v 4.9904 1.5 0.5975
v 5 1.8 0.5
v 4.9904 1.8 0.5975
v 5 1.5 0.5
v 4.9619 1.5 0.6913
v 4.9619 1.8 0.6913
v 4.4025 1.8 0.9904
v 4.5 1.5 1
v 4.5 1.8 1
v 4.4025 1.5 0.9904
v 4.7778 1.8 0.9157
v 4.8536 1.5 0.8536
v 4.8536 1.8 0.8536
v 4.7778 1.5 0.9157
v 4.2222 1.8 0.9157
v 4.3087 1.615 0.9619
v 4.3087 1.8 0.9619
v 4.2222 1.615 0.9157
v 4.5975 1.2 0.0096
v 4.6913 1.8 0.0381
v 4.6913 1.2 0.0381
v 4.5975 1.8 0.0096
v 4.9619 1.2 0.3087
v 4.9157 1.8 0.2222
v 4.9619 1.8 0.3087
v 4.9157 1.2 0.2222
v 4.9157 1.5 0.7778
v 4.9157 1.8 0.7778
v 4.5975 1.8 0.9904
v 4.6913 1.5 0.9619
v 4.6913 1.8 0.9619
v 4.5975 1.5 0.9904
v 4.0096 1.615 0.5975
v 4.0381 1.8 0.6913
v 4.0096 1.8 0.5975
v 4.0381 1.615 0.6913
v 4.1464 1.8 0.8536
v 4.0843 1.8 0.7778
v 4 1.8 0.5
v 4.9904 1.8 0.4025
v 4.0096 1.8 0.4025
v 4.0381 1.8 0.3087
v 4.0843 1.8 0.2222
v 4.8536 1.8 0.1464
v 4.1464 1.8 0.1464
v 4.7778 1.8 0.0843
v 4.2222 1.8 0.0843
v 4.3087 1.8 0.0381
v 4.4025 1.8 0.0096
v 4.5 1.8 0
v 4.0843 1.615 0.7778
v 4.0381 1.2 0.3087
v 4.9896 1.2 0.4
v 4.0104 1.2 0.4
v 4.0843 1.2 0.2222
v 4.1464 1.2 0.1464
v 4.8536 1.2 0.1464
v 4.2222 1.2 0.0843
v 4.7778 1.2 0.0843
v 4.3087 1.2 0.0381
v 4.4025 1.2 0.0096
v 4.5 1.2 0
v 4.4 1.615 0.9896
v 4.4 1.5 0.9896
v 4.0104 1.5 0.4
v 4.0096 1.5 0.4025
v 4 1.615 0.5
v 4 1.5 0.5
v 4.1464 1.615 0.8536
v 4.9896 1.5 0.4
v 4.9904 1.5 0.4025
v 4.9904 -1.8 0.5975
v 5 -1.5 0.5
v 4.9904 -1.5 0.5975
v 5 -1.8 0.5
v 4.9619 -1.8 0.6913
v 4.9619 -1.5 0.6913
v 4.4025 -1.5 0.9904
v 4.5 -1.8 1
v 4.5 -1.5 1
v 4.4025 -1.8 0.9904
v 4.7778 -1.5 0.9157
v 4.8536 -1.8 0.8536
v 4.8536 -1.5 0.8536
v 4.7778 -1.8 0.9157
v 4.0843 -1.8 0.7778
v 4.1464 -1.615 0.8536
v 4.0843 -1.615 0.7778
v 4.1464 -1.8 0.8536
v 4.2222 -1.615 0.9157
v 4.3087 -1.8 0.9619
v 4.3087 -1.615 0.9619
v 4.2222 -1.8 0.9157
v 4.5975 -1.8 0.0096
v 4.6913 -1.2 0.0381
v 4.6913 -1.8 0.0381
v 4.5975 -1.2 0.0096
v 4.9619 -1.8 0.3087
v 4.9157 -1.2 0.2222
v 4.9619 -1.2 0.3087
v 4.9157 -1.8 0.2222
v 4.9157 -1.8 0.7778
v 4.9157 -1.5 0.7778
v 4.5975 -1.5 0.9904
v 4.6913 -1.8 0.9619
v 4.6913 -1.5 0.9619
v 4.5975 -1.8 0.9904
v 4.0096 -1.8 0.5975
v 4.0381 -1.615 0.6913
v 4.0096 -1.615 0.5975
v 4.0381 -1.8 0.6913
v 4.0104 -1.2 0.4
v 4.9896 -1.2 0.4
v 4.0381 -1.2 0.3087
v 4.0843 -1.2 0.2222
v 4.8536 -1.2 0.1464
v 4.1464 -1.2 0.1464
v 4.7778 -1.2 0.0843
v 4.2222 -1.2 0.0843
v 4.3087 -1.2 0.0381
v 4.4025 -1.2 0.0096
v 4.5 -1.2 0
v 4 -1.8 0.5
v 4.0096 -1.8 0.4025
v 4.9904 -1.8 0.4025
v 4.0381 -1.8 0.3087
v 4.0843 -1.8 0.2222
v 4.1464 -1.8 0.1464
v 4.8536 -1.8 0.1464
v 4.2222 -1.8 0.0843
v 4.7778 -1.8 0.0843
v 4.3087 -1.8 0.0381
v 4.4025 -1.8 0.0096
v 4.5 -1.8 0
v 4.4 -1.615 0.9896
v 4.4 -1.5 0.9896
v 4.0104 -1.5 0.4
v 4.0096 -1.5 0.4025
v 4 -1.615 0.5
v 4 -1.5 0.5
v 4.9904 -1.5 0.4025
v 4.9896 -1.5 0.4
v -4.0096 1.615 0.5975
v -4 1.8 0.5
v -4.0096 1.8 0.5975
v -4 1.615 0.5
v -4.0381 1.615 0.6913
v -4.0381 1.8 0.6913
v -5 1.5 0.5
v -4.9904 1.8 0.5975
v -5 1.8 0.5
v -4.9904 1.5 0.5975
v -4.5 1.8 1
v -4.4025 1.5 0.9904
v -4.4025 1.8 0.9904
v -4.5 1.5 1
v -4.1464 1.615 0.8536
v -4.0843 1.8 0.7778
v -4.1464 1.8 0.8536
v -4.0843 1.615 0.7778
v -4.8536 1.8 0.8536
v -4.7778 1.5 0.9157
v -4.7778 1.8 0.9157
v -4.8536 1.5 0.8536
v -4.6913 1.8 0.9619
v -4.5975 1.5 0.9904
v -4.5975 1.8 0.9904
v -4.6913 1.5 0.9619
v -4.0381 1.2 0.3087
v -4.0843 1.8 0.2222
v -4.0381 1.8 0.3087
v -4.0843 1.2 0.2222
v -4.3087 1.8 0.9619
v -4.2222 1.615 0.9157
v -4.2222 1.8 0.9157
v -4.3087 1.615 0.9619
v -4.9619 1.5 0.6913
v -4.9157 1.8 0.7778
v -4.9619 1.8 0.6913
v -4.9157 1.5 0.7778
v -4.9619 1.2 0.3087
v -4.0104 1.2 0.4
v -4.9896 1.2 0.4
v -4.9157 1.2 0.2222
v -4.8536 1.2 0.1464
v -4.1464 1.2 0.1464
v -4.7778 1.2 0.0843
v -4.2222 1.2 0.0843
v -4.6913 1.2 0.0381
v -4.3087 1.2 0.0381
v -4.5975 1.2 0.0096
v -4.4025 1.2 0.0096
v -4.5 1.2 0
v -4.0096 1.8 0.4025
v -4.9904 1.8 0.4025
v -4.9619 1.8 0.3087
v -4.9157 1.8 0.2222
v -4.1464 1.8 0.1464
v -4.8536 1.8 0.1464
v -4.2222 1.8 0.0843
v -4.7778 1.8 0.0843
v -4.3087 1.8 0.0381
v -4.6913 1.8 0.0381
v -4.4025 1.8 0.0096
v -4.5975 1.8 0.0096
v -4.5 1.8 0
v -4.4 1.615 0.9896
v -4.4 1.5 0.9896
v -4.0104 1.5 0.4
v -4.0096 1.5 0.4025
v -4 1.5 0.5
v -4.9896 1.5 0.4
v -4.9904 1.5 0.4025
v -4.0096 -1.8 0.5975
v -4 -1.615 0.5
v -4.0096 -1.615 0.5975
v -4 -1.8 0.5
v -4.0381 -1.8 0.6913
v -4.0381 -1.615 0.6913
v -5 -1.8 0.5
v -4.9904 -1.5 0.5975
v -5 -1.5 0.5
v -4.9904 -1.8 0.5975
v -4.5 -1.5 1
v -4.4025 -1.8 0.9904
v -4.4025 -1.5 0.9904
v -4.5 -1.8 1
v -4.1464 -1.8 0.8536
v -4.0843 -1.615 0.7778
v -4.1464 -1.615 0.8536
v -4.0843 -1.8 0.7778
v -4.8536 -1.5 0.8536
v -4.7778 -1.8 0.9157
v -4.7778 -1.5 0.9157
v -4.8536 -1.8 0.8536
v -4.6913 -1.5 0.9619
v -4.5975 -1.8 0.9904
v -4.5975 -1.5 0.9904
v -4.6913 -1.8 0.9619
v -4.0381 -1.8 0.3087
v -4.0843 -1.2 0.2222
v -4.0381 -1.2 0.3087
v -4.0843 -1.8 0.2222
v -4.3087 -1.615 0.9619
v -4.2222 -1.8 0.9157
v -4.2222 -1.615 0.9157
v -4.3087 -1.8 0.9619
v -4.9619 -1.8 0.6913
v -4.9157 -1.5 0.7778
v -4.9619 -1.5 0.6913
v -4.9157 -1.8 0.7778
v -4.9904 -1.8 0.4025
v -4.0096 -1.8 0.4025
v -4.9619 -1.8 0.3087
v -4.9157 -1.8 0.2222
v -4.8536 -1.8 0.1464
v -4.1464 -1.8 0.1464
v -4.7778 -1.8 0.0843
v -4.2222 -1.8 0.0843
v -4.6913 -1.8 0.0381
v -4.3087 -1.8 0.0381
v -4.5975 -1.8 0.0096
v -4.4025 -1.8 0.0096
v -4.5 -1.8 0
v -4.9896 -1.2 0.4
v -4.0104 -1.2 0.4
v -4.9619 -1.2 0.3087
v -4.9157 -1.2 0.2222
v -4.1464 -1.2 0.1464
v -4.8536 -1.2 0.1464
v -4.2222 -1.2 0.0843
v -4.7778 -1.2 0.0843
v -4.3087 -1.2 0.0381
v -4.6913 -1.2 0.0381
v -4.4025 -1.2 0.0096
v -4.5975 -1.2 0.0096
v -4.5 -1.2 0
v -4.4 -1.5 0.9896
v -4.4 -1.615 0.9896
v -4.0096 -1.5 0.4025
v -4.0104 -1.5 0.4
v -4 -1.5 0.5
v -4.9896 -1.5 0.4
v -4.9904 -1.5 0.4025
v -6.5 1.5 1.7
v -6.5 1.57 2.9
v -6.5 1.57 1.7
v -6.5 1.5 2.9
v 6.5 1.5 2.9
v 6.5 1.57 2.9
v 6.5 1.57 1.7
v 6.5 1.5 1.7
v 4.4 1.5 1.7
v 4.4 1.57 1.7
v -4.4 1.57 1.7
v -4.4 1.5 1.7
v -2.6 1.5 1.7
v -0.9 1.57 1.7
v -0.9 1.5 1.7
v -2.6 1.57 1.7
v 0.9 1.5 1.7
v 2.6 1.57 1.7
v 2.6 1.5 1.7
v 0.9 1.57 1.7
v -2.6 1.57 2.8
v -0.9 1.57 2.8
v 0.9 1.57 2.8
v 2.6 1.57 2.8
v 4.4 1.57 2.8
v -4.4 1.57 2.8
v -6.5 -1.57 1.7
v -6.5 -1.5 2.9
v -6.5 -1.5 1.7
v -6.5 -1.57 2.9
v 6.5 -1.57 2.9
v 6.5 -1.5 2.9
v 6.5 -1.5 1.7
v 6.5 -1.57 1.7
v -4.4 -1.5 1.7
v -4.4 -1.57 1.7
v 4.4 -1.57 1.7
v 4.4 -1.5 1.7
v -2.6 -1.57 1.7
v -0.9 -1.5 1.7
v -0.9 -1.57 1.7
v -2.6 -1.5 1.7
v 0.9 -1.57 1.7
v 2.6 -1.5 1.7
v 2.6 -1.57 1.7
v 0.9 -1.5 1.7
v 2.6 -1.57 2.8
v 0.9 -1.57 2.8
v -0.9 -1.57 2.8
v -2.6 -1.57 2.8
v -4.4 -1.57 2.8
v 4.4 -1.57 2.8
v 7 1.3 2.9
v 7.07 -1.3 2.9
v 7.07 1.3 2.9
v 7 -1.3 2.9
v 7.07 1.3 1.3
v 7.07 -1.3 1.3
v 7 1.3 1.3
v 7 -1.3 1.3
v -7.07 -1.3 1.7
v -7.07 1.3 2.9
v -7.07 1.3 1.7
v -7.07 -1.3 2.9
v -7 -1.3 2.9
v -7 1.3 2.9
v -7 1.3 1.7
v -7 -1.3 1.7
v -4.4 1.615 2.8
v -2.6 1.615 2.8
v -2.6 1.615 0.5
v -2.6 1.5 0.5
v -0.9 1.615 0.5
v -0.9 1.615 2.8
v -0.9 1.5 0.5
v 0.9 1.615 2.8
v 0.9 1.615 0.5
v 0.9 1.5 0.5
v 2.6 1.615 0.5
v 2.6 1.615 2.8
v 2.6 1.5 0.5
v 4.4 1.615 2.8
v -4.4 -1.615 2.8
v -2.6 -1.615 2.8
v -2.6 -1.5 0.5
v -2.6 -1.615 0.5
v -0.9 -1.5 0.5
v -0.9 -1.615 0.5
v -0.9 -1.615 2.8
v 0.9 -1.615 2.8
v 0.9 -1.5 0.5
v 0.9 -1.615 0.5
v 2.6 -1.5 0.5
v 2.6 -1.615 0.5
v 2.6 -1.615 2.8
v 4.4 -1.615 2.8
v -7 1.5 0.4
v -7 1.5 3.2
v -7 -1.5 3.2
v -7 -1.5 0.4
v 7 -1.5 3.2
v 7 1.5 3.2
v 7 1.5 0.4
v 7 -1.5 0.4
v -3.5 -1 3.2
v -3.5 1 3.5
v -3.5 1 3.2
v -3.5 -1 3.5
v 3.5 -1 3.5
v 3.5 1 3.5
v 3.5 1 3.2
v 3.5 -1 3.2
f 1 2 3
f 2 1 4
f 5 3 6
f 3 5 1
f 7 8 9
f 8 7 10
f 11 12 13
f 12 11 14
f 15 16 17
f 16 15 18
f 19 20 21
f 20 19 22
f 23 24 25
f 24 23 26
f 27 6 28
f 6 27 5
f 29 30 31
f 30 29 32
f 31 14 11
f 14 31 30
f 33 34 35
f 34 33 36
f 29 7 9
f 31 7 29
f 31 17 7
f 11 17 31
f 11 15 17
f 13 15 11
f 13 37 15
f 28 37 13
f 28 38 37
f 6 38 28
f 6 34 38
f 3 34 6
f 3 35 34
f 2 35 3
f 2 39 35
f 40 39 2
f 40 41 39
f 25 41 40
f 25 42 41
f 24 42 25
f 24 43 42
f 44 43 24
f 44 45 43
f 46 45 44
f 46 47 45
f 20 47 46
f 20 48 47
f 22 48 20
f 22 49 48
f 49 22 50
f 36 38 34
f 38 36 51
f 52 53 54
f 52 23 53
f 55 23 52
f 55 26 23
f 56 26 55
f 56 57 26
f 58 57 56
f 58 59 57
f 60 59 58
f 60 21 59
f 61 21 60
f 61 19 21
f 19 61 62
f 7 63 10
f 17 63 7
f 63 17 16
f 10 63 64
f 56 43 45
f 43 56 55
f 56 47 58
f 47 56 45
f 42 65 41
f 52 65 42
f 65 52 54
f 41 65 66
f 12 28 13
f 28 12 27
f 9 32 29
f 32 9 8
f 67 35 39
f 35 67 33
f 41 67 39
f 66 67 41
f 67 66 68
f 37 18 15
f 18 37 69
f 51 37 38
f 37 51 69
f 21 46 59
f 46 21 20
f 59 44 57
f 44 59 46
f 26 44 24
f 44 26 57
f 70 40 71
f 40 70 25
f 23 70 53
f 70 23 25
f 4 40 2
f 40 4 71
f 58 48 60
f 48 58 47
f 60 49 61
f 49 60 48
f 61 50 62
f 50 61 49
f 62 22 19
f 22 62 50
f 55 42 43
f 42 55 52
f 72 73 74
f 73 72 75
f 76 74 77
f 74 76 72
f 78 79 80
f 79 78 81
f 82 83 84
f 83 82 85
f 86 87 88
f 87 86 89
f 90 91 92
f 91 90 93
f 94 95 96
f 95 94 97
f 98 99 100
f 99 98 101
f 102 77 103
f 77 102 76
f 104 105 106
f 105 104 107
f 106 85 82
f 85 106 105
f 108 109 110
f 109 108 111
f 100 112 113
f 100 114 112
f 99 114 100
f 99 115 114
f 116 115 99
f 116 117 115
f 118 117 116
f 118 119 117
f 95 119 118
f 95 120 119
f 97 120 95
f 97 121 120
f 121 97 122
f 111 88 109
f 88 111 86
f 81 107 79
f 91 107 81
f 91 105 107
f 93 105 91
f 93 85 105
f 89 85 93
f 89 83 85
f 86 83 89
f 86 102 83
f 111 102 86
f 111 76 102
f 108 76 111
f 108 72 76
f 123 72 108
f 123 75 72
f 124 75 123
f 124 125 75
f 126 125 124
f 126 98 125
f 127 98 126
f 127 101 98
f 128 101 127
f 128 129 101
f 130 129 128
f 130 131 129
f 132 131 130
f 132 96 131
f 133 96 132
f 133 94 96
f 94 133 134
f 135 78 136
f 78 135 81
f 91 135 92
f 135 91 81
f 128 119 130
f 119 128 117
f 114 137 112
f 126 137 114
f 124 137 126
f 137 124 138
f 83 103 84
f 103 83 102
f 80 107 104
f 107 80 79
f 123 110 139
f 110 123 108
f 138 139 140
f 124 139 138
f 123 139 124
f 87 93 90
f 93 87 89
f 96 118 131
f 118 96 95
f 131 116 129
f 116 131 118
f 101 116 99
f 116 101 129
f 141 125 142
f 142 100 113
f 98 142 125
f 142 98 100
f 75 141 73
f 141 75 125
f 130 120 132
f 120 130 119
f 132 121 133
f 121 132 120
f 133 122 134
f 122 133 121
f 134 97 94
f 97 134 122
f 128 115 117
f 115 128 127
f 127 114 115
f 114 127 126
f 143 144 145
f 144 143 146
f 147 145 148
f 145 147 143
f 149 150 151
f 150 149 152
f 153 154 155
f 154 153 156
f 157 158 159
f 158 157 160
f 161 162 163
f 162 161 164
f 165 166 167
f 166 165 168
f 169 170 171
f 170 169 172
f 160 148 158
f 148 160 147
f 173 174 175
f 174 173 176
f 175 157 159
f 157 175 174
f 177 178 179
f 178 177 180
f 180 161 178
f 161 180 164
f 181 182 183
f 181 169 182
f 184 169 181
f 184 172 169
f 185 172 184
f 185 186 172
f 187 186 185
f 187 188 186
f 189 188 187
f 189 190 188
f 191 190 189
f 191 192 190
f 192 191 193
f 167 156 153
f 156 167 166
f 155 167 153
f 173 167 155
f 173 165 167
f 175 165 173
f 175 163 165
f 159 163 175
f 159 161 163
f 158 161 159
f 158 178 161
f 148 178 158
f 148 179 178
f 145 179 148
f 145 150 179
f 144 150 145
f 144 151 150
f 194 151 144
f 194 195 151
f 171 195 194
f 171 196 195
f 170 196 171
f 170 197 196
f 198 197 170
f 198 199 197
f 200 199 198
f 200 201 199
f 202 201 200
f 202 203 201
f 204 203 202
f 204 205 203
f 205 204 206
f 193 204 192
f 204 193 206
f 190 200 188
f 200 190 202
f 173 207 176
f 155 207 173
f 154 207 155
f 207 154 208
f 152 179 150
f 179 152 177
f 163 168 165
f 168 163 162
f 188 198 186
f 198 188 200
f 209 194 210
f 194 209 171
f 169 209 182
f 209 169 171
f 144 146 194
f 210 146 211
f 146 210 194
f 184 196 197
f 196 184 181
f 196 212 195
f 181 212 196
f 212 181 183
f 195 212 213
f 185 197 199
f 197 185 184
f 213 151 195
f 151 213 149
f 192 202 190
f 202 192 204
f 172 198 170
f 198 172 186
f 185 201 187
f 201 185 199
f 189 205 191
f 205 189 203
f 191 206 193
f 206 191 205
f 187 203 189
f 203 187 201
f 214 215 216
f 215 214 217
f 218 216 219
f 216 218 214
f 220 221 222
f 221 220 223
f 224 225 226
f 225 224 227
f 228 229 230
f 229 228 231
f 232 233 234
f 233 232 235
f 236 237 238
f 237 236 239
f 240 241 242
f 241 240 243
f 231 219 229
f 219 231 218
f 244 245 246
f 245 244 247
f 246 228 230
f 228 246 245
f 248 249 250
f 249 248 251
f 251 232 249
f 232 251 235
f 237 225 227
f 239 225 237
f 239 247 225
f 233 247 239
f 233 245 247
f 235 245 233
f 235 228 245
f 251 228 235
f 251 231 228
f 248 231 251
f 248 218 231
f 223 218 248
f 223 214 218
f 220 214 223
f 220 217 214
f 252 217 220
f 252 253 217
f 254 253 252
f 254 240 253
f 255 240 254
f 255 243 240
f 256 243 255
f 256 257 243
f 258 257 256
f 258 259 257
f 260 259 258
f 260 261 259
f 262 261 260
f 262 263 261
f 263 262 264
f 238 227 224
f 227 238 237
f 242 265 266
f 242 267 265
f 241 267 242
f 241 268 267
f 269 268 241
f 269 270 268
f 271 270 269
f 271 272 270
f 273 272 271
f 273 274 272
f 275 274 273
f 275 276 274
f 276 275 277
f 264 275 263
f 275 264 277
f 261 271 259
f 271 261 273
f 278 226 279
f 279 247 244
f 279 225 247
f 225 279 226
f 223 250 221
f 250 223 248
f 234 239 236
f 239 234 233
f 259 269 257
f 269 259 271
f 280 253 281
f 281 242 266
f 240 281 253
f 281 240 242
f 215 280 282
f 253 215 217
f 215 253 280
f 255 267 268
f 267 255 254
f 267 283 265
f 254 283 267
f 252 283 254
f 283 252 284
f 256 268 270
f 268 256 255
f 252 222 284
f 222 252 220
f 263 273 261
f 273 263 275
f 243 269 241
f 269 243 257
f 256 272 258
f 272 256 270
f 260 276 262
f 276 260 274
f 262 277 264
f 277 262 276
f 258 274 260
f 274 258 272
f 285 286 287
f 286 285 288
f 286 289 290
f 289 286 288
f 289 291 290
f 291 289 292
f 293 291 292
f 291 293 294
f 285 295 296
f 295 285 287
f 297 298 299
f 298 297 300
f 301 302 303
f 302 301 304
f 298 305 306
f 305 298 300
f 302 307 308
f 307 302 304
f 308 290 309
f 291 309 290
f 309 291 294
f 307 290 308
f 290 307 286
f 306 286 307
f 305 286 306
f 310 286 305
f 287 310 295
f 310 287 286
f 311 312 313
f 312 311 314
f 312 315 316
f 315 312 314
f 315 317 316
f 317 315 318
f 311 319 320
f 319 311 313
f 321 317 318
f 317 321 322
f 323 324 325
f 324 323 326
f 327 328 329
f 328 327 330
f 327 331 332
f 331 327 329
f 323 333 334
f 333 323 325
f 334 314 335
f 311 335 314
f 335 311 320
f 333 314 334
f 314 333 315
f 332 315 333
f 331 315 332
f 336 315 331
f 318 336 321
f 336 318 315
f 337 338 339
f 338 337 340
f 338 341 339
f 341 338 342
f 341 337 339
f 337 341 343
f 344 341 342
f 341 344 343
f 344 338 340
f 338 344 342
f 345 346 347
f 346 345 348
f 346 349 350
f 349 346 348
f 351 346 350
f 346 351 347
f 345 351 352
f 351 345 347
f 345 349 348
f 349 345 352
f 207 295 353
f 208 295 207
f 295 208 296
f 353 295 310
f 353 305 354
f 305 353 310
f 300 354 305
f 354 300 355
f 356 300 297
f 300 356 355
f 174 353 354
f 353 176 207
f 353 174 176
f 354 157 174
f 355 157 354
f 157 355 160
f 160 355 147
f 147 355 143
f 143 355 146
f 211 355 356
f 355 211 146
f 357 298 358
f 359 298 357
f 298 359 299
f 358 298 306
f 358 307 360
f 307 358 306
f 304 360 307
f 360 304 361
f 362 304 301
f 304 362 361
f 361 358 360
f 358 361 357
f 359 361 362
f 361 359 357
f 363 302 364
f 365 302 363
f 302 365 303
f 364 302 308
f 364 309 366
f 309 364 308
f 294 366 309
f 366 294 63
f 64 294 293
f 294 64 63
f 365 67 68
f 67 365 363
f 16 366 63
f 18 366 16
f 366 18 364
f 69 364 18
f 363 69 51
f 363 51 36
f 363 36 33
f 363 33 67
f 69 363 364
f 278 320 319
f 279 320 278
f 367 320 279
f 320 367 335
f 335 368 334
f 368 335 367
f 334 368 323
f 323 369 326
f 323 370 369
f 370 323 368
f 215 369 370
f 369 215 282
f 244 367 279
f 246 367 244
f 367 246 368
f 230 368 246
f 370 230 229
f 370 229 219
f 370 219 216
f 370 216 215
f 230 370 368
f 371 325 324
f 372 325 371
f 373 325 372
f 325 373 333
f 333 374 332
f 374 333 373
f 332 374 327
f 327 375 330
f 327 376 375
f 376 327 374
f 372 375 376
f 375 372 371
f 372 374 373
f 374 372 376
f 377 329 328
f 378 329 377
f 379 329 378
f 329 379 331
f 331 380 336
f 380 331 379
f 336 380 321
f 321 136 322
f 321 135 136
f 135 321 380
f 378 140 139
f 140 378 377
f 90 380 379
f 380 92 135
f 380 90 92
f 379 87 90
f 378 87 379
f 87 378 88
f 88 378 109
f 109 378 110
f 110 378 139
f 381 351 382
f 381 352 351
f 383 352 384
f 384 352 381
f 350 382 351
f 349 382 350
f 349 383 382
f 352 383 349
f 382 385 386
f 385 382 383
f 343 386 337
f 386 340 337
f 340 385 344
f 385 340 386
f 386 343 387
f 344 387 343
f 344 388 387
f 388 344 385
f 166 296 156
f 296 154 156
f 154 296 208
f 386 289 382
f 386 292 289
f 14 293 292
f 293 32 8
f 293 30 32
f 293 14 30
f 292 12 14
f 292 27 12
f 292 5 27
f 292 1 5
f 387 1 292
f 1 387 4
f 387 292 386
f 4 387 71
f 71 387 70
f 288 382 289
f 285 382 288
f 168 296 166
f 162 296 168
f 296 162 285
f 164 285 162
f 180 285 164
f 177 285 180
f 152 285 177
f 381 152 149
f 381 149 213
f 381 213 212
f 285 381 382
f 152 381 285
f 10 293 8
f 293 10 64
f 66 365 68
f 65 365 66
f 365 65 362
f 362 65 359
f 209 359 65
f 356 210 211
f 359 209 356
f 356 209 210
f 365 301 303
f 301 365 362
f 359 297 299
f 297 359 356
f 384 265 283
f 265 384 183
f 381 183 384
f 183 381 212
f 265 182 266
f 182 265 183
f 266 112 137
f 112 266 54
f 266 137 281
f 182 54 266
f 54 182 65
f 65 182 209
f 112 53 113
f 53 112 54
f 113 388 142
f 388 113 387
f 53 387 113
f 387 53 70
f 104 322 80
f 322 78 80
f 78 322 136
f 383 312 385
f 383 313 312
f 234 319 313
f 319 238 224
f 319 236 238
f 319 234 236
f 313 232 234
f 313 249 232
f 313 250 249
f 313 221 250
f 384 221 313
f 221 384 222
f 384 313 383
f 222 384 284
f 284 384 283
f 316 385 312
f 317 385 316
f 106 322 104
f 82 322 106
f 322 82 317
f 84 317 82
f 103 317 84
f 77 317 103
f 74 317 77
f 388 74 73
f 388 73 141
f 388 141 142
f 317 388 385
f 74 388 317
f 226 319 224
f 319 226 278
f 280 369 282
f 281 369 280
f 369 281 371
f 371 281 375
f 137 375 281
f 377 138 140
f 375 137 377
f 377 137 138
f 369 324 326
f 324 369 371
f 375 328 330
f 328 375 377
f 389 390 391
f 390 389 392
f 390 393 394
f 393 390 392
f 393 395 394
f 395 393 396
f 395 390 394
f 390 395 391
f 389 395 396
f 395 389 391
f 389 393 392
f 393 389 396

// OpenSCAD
// Passenger Shuttle Bus

module airport_shuttle() {
    L = 14.0;
    W = 3.0;
    H = 3.5;

    // proportions
    clearance = 0.4;
    ac_h = 0.3;
    body_h = H - clearance - ac_h; // 2.8
    wheel_r = 0.5;
    wheel_w = 0.6;
    e = 0.02;

    // wheels
    color("darkgray") {
        axle_offset = L/2 - 2.5;
        for (x = [axle_offset, -axle_offset]) {
            for (y = [W/2, -W/2]) {
                translate([x, y, wheel_r])
                rotate([90, 0, 0])
                cylinder(h=wheel_w, r=wheel_r, center=true, $fn=32);
            }
        }
    }

    //MAIN
    translate([0, 0, clearance]) {
        // White chassis/body
        color("whitesmoke")
        translate([0, 0, body_h/2])
        cube([L, W, body_h], center=true);

        window_h = 1.2;
        window_z = body_h - window_h/2 - 0.3;

        color("darkslategray") {
            // window bands
            for (y = [W/2, -W/2]) {
                translate([0, y + (y>0 ? e : -e), window_z])
                cube([L - 1, 0.1, window_h], center=true);
            }

            // windshield
            translate([L/2 + e, 0, window_z - 0.2])
            cube([0.1, W - 0.4, window_h + 0.4], center=true);

            // rear window
            translate([-L/2 - e, 0, window_z])
            cube([0.1, W - 0.4, window_h], center=true);
        }

        //doors
        door_w = 1.8;
        door_h = 2.3;
        door_z = door_h/2 + 0.1; // Slight step up from bottom

        color("slategray") {
            for (y = [W/2, -W/2]) {
                // 3 sets of doors evenly spaced per side
                for (x = [-3.5, 0, 3.5]) {
                    translate([x, y + (y>0 ? e*2 : -e*2), door_z])
                    cube([door_w, 0.15, door_h], center=true);
                }
            }
        }
    }

    //ac
    color("silver")
    translate([0, 0, clearance + body_h + ac_h/2])
    cube([L/2, W/1.5, ac_h], center=true);
}

airport_shuttle();
